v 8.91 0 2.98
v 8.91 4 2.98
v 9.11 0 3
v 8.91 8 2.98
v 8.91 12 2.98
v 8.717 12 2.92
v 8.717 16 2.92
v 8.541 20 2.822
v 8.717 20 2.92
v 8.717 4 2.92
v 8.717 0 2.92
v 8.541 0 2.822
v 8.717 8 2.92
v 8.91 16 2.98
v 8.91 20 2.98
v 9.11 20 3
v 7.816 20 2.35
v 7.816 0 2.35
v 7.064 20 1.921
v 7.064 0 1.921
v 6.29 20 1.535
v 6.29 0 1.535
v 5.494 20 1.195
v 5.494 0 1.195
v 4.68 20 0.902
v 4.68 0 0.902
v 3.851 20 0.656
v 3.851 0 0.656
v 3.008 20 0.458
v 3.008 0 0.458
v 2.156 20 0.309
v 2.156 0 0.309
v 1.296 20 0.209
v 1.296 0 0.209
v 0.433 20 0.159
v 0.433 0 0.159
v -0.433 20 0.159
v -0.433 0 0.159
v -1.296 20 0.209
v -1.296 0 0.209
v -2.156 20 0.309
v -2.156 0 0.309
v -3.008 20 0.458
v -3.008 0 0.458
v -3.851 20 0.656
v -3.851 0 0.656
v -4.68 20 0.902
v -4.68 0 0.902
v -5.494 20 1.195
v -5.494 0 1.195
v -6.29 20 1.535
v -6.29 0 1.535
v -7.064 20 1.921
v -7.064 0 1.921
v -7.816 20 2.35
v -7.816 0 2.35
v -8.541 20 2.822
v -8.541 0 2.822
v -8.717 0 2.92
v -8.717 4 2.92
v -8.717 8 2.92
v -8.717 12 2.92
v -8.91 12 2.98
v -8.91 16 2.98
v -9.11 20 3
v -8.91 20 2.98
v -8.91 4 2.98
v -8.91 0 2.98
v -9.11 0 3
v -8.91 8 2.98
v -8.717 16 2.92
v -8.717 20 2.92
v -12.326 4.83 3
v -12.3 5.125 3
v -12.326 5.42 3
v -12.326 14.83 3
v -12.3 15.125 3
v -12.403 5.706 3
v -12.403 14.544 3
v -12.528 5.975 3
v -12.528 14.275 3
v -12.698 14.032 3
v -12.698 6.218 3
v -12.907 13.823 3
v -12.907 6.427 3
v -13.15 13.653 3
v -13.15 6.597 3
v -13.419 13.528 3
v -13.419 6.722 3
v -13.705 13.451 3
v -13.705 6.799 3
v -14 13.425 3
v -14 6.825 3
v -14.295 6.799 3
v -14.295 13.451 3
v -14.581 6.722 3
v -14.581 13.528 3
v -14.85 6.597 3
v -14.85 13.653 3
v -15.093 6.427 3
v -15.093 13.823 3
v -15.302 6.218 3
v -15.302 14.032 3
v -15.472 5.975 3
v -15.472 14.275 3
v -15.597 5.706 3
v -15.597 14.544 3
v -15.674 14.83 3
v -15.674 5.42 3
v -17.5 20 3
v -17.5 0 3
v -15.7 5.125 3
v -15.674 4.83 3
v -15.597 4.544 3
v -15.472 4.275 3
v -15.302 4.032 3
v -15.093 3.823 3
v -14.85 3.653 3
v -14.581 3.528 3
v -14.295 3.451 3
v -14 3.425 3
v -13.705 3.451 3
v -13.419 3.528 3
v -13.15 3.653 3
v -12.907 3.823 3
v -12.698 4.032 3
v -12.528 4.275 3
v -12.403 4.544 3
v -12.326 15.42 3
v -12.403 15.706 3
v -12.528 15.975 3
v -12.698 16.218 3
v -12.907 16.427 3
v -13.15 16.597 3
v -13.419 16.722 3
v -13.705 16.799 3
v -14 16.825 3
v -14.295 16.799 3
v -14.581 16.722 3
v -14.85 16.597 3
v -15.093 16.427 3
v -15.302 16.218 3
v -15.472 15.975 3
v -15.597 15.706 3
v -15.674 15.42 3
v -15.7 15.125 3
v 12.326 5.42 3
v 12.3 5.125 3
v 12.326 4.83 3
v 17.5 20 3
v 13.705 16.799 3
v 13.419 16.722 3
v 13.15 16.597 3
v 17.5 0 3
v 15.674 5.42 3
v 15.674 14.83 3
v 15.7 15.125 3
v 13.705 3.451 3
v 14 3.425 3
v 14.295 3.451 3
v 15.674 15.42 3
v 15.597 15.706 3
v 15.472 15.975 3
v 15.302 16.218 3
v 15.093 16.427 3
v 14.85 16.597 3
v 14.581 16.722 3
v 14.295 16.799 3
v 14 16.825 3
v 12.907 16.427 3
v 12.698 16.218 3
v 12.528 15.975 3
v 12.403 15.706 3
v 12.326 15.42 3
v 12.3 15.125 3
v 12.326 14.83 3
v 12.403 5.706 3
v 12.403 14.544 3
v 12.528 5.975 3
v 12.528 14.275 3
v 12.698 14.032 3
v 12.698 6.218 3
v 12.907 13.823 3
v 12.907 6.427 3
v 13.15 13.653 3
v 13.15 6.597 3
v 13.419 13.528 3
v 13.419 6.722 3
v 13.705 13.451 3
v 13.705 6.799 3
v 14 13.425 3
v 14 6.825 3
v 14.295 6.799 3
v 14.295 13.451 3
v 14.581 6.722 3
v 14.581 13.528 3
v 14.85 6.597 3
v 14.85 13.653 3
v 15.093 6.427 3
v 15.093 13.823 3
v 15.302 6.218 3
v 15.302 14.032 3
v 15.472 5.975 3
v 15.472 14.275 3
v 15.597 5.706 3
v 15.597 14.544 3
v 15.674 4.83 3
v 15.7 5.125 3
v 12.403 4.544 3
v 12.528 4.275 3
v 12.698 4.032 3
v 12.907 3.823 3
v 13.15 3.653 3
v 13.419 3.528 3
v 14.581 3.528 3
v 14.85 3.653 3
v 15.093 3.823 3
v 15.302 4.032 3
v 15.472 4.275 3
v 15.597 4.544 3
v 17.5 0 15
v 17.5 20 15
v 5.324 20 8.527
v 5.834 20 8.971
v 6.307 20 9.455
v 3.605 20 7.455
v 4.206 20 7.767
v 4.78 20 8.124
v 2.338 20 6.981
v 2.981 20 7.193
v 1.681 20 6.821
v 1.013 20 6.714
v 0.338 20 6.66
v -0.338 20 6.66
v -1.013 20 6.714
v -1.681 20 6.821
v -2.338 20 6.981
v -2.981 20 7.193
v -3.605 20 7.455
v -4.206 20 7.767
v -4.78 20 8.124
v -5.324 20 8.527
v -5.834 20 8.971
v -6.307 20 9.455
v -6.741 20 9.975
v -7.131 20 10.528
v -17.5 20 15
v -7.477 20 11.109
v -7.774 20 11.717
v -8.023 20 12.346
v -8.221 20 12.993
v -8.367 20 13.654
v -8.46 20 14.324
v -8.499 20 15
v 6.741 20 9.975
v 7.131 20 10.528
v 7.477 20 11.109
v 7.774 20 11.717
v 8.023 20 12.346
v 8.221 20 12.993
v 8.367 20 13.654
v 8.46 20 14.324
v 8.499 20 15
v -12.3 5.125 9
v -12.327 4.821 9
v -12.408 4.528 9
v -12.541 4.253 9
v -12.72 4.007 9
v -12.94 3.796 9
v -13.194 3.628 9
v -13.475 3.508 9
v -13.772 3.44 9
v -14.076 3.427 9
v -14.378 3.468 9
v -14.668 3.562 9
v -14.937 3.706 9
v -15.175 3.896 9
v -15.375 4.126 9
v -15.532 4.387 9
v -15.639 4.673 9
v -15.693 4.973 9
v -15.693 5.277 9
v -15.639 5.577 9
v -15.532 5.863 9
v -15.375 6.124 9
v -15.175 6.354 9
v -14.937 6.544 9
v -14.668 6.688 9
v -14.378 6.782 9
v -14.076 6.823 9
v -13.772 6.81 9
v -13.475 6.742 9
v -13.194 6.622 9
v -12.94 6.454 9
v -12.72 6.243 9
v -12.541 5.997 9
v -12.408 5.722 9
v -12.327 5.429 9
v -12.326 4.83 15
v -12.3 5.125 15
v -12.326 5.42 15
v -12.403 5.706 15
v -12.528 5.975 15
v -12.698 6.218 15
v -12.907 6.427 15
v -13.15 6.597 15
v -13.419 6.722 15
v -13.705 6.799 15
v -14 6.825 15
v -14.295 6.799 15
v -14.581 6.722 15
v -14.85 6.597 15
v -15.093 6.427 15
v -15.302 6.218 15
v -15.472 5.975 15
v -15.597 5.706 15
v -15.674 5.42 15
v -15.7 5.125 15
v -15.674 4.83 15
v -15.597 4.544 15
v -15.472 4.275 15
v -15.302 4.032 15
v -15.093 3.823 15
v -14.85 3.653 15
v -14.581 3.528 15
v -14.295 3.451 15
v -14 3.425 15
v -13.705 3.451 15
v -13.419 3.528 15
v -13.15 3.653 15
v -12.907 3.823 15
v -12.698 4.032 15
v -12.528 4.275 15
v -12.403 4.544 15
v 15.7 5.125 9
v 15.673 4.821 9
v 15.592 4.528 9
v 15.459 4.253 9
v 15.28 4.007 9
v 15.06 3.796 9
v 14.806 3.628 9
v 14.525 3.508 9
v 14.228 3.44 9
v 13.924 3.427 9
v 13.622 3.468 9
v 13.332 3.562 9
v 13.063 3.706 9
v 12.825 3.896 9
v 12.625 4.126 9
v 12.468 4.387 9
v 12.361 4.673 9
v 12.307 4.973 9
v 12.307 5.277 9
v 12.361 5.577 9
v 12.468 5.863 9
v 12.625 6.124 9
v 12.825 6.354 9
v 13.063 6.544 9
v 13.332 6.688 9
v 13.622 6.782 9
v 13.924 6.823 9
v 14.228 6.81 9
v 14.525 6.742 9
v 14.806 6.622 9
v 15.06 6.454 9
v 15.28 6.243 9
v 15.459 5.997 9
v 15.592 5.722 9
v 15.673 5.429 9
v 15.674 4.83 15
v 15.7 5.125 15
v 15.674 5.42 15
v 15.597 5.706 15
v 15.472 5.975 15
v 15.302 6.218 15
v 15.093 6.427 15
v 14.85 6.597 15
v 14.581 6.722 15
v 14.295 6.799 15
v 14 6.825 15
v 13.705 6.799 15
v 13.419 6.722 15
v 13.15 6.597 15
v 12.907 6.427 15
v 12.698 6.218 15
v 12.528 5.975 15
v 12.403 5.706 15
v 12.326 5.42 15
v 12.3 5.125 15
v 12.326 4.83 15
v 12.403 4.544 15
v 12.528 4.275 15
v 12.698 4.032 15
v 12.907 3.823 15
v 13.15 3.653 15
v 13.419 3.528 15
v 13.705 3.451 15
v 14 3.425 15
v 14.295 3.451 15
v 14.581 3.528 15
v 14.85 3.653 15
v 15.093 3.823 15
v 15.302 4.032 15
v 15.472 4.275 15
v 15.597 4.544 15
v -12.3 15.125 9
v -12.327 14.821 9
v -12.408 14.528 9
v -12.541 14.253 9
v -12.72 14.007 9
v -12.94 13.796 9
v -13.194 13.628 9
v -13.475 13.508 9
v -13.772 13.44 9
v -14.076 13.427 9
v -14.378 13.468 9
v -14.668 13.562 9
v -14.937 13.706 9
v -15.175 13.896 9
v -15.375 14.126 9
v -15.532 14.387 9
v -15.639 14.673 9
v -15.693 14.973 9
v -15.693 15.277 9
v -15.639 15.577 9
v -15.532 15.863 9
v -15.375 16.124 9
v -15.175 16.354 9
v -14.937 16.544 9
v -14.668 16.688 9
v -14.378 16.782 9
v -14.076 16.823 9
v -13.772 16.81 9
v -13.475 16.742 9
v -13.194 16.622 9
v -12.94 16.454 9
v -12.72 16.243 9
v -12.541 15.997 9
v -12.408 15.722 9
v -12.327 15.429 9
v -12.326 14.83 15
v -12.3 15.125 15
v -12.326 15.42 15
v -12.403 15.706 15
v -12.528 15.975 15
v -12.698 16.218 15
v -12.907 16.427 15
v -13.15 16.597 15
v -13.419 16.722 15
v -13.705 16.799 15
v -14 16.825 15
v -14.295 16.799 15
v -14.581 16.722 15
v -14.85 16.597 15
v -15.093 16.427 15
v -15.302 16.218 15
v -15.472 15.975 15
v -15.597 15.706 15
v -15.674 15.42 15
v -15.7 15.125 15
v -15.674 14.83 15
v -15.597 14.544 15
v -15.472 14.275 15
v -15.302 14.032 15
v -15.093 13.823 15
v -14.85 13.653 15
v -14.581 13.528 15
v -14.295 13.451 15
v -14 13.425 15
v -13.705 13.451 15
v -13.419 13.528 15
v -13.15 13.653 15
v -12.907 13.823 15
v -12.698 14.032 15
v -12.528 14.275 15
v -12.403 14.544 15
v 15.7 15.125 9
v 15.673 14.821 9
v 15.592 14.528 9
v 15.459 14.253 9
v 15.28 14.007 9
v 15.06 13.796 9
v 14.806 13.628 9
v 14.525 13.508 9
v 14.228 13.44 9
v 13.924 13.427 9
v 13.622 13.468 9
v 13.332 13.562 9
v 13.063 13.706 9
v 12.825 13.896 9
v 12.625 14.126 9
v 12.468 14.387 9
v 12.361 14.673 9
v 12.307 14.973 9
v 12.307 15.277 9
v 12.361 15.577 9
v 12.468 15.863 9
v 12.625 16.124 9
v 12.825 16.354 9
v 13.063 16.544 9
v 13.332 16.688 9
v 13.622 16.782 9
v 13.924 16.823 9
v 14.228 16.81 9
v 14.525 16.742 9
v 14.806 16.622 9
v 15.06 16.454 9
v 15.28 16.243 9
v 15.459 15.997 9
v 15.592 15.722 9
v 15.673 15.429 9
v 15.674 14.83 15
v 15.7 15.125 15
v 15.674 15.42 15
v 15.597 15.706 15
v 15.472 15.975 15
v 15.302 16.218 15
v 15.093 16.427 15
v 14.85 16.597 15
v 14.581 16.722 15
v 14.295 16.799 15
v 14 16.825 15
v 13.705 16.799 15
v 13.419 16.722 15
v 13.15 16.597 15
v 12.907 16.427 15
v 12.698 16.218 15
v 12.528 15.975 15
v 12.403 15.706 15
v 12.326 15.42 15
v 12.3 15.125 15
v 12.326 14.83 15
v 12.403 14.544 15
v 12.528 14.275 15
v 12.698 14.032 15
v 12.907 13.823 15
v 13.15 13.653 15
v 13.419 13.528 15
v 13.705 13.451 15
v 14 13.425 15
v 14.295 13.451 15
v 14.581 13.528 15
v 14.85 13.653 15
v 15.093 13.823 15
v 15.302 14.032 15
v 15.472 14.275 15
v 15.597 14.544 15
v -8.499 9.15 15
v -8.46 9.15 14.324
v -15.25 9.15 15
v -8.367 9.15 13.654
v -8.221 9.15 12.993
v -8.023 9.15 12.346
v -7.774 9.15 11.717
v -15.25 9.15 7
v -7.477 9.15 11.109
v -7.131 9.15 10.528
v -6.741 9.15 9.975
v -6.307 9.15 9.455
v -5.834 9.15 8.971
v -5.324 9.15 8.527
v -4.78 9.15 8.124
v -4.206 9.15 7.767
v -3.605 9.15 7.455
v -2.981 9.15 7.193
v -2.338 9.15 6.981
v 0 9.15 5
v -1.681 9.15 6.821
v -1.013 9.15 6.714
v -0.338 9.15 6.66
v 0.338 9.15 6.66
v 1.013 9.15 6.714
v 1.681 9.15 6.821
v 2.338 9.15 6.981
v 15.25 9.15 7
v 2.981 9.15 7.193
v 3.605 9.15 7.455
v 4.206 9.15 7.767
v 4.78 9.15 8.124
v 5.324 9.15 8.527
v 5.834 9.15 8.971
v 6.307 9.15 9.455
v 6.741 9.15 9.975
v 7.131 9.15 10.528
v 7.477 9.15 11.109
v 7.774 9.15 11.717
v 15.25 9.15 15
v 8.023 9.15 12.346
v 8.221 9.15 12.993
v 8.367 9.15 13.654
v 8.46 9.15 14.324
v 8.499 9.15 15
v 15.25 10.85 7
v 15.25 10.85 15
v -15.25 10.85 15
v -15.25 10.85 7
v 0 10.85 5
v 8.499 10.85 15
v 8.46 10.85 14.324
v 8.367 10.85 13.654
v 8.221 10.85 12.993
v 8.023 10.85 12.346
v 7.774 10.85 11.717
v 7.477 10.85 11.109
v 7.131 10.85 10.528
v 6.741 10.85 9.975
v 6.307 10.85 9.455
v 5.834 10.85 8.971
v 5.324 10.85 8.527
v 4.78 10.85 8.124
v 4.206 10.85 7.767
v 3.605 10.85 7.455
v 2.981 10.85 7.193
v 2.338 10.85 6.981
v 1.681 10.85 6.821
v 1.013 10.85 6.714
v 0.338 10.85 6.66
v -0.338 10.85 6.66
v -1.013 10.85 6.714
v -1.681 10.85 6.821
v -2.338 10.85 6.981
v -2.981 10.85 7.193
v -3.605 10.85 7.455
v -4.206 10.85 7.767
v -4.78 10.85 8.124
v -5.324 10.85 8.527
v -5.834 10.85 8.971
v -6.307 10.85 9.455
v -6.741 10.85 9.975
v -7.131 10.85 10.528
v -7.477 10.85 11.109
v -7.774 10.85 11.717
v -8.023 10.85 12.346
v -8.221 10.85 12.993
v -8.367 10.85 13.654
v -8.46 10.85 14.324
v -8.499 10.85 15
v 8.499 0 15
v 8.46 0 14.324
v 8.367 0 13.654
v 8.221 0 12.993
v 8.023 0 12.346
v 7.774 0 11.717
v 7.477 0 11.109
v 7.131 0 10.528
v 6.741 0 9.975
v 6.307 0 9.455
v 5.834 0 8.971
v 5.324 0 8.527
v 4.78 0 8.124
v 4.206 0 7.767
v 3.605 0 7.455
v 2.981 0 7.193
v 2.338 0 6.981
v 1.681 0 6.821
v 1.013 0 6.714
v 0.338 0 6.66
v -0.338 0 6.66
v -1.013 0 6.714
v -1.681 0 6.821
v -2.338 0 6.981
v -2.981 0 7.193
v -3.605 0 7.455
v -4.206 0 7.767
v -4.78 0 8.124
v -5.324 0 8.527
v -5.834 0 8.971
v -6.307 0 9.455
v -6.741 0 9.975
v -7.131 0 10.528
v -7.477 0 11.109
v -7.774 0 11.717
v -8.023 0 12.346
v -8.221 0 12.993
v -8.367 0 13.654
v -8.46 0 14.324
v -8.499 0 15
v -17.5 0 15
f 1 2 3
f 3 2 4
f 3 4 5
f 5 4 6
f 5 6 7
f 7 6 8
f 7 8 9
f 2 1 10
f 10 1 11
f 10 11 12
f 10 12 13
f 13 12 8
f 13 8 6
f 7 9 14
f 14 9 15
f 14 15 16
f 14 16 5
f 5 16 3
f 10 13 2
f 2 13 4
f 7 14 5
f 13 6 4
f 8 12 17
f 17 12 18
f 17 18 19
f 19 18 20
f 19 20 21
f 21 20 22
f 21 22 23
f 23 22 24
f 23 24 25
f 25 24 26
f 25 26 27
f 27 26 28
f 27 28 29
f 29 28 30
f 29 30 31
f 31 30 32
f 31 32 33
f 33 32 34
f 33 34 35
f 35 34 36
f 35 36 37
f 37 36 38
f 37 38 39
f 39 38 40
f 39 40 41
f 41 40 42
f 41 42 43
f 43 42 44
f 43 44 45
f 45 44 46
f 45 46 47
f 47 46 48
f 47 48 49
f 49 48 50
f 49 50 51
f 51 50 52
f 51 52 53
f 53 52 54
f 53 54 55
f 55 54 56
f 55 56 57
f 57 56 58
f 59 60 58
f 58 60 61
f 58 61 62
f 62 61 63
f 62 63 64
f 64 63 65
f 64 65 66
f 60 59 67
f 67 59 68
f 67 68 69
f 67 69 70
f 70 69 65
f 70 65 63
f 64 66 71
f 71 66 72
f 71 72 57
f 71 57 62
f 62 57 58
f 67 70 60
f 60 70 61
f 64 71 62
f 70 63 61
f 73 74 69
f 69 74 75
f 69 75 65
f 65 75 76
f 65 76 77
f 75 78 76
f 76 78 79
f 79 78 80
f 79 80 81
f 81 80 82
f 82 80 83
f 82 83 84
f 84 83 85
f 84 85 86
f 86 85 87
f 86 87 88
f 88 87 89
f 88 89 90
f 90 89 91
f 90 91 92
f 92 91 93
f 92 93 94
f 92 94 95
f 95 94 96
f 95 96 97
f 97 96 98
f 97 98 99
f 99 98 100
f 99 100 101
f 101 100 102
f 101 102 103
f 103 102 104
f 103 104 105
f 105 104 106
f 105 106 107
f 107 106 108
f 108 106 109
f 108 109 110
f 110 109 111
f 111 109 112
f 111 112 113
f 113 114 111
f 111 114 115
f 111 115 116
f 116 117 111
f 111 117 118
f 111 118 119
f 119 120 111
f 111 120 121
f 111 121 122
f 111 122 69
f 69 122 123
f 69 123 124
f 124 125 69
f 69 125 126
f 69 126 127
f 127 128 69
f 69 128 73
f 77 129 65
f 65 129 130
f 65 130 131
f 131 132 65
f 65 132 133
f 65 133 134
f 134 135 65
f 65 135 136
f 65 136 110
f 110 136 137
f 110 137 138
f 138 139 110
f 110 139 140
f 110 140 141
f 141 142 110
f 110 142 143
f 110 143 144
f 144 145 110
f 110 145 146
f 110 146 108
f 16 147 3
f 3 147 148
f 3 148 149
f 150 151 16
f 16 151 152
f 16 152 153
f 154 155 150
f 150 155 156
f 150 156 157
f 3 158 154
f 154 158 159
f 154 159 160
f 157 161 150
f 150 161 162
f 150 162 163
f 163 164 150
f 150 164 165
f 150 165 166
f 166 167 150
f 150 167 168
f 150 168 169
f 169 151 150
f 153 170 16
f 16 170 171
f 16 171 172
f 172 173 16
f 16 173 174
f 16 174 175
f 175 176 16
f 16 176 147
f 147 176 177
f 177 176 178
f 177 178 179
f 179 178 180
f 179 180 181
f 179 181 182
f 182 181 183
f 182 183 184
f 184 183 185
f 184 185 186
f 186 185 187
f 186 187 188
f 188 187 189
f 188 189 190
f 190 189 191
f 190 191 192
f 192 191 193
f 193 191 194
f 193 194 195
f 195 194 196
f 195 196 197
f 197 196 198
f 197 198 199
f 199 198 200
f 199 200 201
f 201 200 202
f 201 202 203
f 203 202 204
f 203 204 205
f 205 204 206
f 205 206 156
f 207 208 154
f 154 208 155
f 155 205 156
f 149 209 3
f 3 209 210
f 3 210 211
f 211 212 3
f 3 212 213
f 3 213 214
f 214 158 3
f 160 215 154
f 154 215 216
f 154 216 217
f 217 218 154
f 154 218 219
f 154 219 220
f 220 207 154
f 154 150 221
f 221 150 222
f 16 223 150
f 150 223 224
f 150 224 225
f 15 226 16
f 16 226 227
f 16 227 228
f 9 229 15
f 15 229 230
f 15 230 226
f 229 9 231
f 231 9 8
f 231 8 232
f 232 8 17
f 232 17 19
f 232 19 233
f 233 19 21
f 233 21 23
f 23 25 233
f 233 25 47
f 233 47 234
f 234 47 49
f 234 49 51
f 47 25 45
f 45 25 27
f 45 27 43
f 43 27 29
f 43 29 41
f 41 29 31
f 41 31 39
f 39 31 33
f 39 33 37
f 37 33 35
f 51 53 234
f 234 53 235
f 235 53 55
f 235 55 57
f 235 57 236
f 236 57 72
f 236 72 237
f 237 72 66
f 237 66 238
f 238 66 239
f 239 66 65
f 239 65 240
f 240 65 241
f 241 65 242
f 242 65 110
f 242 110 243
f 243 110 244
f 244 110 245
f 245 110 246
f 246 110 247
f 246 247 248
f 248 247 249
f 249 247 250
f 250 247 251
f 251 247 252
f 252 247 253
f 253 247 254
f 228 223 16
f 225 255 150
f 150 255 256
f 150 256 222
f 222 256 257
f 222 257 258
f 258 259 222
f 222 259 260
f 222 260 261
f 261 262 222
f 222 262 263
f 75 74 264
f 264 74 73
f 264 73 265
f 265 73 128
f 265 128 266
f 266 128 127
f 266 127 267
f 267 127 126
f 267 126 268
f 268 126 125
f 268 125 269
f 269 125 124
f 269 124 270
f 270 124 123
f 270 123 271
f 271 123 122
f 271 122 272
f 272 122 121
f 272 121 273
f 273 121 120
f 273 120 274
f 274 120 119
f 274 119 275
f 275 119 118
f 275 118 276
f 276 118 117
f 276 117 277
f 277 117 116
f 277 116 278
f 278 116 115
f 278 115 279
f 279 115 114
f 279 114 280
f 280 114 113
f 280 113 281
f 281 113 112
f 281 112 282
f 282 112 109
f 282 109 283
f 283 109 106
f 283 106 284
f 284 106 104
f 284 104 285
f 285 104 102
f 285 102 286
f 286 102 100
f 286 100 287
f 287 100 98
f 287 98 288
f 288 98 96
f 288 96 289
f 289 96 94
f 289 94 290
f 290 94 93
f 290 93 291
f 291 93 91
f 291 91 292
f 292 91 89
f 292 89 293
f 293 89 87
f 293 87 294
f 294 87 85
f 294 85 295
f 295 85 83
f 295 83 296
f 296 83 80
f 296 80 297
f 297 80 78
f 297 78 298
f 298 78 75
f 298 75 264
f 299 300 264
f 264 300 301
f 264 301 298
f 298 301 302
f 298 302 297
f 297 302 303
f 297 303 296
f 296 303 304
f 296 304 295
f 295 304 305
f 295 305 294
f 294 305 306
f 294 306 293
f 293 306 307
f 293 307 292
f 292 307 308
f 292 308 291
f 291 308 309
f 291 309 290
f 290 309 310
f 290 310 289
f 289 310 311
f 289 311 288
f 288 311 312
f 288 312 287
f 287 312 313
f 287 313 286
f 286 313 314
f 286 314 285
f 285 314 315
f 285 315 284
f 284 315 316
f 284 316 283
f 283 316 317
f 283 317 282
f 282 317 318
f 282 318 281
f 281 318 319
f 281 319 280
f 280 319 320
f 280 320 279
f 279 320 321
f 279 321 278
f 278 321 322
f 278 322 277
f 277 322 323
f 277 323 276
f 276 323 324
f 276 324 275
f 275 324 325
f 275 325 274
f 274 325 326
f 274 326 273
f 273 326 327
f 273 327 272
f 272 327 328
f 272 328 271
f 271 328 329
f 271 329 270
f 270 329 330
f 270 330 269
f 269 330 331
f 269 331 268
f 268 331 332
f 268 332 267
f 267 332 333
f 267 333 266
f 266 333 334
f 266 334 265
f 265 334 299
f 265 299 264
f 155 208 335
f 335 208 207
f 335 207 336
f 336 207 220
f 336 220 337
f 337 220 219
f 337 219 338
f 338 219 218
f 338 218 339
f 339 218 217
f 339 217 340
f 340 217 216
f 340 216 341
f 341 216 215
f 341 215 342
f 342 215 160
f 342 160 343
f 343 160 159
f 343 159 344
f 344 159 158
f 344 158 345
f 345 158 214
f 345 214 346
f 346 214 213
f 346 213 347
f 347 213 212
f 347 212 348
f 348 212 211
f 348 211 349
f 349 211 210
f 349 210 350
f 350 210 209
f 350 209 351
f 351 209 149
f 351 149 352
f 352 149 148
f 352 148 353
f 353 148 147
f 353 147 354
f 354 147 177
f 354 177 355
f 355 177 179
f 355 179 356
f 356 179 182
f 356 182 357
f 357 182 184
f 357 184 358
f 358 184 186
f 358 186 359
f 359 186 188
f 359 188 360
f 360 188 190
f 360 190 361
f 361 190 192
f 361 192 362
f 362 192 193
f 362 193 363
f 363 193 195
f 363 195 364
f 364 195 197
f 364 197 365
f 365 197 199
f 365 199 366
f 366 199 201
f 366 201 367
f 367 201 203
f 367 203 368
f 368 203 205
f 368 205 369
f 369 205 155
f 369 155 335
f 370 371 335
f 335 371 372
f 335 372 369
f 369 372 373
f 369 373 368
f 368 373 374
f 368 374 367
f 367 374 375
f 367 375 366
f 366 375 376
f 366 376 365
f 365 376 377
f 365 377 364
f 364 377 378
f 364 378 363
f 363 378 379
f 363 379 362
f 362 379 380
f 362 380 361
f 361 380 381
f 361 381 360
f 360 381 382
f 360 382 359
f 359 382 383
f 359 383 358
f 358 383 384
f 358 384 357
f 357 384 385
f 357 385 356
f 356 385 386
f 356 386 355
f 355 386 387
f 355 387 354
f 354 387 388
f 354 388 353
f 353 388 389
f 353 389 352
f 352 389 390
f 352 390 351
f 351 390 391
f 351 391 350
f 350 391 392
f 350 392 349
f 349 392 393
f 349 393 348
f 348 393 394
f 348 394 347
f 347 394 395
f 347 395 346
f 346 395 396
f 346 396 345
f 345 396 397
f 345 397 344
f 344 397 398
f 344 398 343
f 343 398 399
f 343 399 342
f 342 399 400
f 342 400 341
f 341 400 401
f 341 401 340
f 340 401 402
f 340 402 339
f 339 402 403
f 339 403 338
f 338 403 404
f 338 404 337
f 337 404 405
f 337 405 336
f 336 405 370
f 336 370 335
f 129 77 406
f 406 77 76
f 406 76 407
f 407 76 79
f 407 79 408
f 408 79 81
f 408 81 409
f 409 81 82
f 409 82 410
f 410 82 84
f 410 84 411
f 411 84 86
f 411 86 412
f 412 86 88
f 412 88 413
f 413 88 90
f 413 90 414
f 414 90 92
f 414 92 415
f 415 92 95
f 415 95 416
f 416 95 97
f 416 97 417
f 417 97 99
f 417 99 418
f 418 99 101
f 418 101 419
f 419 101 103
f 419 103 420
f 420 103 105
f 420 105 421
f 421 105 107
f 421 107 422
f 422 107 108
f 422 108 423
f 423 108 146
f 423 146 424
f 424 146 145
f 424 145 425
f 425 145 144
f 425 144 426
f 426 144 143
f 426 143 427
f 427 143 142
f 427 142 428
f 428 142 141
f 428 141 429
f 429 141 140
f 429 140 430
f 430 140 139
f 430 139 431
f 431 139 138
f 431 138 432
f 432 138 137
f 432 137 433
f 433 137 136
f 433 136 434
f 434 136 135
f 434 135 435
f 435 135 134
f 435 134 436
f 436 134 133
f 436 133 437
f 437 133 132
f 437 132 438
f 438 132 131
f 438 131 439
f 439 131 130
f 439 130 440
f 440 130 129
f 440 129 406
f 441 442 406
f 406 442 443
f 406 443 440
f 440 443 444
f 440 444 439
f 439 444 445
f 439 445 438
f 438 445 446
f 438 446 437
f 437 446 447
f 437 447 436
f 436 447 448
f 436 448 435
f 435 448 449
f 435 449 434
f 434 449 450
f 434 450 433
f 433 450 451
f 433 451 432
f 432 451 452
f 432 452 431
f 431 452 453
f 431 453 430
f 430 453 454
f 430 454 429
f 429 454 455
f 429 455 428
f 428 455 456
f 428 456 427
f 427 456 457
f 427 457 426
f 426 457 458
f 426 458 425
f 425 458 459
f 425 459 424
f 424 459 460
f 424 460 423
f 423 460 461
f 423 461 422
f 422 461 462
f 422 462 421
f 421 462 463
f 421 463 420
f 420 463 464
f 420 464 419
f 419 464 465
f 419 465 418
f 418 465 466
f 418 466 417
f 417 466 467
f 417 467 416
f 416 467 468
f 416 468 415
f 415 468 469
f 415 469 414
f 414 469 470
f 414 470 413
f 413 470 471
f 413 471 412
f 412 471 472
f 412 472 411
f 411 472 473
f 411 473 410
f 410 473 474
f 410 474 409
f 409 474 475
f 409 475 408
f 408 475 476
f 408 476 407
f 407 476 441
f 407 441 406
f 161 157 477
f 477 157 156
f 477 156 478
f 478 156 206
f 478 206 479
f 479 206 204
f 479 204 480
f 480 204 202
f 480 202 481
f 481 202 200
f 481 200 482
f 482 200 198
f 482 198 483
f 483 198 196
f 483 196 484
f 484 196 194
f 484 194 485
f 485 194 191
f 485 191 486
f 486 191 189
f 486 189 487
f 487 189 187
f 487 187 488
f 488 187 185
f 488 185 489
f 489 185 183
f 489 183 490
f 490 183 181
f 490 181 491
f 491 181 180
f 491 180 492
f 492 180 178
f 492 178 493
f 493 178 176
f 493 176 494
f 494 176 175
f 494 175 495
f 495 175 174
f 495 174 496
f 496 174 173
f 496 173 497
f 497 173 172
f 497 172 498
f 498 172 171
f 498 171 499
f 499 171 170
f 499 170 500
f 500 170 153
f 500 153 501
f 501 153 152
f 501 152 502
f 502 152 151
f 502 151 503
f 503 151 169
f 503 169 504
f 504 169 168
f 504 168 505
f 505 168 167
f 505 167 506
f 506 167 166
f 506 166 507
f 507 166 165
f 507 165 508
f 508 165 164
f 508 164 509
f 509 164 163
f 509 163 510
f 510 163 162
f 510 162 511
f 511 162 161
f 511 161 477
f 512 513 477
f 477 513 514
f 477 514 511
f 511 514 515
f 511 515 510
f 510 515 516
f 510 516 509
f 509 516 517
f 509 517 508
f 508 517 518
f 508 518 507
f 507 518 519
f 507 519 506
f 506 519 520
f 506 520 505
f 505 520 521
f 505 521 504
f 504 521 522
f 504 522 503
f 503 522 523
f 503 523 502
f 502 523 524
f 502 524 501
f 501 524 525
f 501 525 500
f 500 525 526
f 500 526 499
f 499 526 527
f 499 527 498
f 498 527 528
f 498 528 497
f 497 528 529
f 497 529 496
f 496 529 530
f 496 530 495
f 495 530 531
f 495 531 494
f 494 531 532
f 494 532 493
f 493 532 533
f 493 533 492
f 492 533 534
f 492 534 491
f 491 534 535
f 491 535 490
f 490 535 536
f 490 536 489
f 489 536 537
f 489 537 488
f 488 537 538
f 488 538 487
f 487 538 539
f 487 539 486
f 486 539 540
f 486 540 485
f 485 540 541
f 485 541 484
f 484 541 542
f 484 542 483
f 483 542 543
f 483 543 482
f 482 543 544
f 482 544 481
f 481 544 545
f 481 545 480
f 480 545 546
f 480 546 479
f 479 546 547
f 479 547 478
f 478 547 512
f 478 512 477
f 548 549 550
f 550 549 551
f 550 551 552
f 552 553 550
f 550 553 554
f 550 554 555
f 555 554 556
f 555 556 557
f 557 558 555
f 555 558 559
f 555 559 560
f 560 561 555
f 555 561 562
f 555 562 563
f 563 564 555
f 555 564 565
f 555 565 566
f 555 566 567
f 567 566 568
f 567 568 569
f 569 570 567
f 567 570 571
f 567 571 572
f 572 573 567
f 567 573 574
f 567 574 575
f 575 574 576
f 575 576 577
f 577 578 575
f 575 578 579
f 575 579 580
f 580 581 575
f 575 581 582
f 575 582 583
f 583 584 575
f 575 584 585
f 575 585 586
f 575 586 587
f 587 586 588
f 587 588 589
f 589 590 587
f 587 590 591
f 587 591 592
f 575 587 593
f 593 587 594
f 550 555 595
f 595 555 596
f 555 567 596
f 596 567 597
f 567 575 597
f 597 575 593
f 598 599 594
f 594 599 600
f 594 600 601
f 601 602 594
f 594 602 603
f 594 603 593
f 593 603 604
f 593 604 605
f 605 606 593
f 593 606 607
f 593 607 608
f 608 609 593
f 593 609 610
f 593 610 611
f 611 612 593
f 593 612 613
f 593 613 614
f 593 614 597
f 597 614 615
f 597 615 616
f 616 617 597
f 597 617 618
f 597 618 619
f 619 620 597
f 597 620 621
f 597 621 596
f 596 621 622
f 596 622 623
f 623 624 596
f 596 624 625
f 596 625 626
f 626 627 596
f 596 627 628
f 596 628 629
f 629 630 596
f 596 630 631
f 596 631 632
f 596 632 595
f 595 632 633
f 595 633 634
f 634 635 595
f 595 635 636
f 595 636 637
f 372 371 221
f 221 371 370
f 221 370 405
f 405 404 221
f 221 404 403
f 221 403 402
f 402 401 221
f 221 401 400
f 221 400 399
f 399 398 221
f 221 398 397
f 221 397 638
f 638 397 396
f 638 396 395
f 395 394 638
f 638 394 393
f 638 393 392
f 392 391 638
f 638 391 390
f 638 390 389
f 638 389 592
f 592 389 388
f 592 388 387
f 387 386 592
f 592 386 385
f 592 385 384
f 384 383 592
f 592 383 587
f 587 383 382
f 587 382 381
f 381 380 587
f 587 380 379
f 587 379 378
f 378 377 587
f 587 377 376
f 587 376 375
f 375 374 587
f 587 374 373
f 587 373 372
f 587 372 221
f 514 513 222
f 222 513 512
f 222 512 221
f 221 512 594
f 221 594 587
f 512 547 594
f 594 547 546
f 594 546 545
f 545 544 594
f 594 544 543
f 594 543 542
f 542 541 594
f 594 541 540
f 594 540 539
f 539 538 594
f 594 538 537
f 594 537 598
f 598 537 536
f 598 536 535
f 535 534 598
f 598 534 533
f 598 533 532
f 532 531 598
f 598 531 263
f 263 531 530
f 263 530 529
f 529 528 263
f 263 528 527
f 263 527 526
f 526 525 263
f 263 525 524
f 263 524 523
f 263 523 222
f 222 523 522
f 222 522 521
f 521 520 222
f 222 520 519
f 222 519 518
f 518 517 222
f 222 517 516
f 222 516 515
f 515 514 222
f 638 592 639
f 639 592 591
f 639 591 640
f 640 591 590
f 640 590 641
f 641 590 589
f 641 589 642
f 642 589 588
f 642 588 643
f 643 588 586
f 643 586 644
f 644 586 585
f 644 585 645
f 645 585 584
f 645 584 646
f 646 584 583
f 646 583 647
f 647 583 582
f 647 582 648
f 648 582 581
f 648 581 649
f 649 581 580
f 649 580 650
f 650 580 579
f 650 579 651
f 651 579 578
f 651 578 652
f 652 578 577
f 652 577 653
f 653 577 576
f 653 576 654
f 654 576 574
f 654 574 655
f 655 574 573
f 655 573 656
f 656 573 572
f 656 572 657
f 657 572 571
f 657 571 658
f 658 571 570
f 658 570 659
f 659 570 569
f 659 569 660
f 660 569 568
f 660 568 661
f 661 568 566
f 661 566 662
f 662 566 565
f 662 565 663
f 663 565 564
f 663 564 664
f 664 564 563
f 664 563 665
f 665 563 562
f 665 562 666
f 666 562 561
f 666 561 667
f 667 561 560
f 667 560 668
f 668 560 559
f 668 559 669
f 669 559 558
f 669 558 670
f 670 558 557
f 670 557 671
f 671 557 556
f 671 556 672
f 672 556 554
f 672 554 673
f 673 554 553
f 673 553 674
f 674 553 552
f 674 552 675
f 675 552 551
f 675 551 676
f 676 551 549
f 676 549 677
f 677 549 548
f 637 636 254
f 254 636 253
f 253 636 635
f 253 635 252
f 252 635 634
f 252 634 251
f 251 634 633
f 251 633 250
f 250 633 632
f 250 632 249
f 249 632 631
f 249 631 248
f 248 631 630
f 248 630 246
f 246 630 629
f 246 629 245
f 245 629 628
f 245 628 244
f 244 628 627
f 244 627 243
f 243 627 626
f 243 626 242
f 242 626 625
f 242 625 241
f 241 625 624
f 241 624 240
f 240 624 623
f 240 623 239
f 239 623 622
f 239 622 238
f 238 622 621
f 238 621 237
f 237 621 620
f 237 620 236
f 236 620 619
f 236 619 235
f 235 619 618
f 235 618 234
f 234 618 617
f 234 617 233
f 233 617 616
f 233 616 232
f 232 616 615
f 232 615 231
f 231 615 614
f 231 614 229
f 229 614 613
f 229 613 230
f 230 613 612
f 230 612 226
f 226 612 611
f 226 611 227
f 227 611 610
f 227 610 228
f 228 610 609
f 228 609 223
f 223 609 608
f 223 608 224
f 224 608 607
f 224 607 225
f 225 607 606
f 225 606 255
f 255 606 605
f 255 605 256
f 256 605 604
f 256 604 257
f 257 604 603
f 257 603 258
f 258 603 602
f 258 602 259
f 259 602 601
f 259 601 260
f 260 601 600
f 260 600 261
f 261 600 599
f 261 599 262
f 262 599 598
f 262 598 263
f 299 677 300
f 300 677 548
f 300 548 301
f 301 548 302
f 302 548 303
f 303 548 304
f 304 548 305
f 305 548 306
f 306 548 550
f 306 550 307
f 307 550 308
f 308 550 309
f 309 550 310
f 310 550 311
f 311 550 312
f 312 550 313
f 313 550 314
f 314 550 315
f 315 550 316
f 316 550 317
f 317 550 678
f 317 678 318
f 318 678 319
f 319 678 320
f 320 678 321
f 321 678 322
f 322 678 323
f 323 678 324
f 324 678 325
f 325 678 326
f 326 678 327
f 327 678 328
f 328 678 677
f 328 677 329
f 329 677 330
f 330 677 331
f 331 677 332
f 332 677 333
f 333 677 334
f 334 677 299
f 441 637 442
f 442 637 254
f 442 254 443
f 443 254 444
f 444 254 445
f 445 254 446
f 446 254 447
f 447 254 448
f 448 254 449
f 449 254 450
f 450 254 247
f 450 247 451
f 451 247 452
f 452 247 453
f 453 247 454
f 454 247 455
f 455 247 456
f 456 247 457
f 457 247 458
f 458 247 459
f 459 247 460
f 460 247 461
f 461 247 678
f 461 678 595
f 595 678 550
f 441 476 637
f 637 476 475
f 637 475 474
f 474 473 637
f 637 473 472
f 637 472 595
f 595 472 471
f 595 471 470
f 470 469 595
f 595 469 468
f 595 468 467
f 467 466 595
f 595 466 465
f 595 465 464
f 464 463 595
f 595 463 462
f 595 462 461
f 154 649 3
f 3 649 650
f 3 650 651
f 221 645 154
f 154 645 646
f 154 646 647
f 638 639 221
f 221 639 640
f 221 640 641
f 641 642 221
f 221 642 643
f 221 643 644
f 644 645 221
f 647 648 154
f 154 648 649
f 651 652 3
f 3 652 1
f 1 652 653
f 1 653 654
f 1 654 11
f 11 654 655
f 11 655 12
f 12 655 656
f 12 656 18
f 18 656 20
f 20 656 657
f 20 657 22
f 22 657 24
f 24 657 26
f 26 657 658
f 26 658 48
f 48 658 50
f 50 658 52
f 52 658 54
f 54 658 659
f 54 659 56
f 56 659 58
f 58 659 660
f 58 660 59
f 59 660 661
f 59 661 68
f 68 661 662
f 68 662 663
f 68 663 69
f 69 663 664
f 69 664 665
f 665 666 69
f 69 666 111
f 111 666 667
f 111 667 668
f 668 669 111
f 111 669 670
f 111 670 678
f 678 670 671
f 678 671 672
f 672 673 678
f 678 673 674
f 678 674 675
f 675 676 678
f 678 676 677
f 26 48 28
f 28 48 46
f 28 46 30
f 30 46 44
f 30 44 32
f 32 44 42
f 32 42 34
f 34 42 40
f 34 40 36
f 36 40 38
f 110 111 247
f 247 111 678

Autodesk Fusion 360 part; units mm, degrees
sketch "スケッチ1" plane through (0, 0, 0) normal (0, 0, 1) x (1, 0, 0)
  line L0 (-19, 20) -> (19, 20)
  line L1 (19, 20) -> (19, 0)
  line L2 (19, 0) -> (-19, 0)
  line L3 (-19, 0) -> (-19, 20)
  dimension "d1" = 38
  dimension "d2" = 20
extrude "押し出し1" add sketch "スケッチ1" along normal blind 15
sketch "スケッチ2" plane through (0, 0, 0) normal (0, -1, 0) x (1, 0, 0)
  line L0 (-19, 0) -> (19, 0)
  line L1 (19, 0) -> (19, 15)
  line L2 (19, 15) -> (-19, 15)
  line L3 (-19, 15) -> (-19, 0)
  line L4 (-19, 15.1531) -> (19, 15.1531) construction
  arc A0 (-8.5, 15.1531) -> (8.5, 15.1531) centre (0, 15.1531) ccw
  line L5 (8.5, 15.1531) -> (8.5, 15)
  line L6 (-8.5, 15.1531) -> (-8.5, 15)
  dimension "d6" = 17
extrude "押し出し2" cut sketch "スケッチ2" against normal blind 20 contours L2 A0
ref_plane "WorkPlane2" through (0, 10, 0) normal (0, 1, 0) x (0, 0, 1)
sketch "Sketch5" plane through (0, 10, 0) normal (0, 1, 0) x (1, 0, 0)
  line L0 (15.25, -15) -> (0, -15)
  line L1 (15.25, -7) -> (15.25, -15)
  line L2 (0, -5) -> (15.25, -7)
  arc A0 (3.3966, -15) -> (-3.3966, -15) centre (0, -15.1531) ccw
  line L3 (3.3966, -15) -> (19, -15)
  line L4 (19, -15) -> (19, 0)
  line L5 (19, 0) -> (-19, 0)
  line L6 (-19, 0) -> (-19, -15)
  line L7 (-19, -15) -> (-3.3966, -15)
  line L8 (-15.25, -15) -> (0, -15)
  line L9 (-15.25, -7) -> (-15.25, -15)
  line L10 (0, -5) -> (-15.25, -7)
extrude "Extrude5" cut sketch "Sketch5" along normal blind 0.85 and the other way blind 0.85 contours L0 L1 L2 A0 L3 L7 L8 L9 L10
sketch "スケッチ4" plane through (0, 0, 15) normal (0, 0, 1) x (-1, 0, 0)
  line L0 (8.4986, -20) -> (19, -20)
  line L1 (19, -20) -> (19, 0)
  line L2 (19, 0) -> (8.4986, 0)
  line L3 (19, -15.125) -> (-17.5478, -15.125) construction
  line L4 (-19, -20) -> (-8.4986, -20) construction
  line L5 (19, -5.125) -> (-19, -5.125) construction
  line L6 (-19, 0) -> (-19, -20) construction
  circle A0 centre (-14, -15.125) radius 1.7
  circle A1 centre (-14, -5.125) radius 1.7
  circle A2 centre (14, -15.125) radius 1.7
  circle A3 centre (14, -5.125) radius 1.7
  line L7 (15.25, -10.85) -> (8.4986, -10.85)
  line L8 (8.4986, -10.85) -> (8.4986, -20)
  line L9 (8.4986, 0) -> (8.4986, -9.15)
  line L10 (8.4986, -9.15) -> (15.25, -9.15)
  line L11 (15.25, -9.15) -> (15.25, -10.85)
  dimension "d15" = 4.875
  dimension "d16" = 10
  dimension "d17" = 3.4
  dimension "d18" = 5
  dimension "d19" = 3.4
  dimension "d20" = 5
  dimension "d21" = 3.4
  dimension "d22" = 5
  dimension "d23" = 3.4
  dimension "d24" = 5
extrude "押し出し4" cut sketch "スケッチ4" against normal blind 25 contours A0 | A1 | A2 | A3
sketch "Sketch6" plane through (0, 0, 0) normal (0, -1, 0) x (1, 0, 0)
  arc A0 (-8.4986, 15) -> (8.4986, 15) centre (0, 15.1531) ccw
  line L0 (-8.4986, 15) -> (-19, 15)
  line L1 (-19, 15) -> (-19, 0)
  line L2 (-19, 0) -> (19, 0)
  line L3 (19, 0) -> (19, 15)
  line L4 (19, 15) -> (8.4986, 15)
  circle A1 centre (0, 15.1531) radius 15
  line L5 (-19, 15) -> (19, 15)
  line L6 (19, 15) -> (19, 3)
  line L7 (19, 3) -> (-19, 3)
  line L8 (-19, 3) -> (-19, 15)
  dimension "d32" = 30
  dimension "d33" = 12
extrude "Extrude6" cut sketch "Sketch6" against normal blind 25 contours L1 L2 L3 A1 L7
fillet "Fillet1" radius 1 2 edges at (-8.7921, 10, 3) (8.7921, 10, 3)
move_face "OffsetFaces1" offset -1.5 1 faces at (-19, 6.6667, 7)
move_face "OffsetFaces2" offset -1.5 1 faces at (19, 13.3333, 7)
